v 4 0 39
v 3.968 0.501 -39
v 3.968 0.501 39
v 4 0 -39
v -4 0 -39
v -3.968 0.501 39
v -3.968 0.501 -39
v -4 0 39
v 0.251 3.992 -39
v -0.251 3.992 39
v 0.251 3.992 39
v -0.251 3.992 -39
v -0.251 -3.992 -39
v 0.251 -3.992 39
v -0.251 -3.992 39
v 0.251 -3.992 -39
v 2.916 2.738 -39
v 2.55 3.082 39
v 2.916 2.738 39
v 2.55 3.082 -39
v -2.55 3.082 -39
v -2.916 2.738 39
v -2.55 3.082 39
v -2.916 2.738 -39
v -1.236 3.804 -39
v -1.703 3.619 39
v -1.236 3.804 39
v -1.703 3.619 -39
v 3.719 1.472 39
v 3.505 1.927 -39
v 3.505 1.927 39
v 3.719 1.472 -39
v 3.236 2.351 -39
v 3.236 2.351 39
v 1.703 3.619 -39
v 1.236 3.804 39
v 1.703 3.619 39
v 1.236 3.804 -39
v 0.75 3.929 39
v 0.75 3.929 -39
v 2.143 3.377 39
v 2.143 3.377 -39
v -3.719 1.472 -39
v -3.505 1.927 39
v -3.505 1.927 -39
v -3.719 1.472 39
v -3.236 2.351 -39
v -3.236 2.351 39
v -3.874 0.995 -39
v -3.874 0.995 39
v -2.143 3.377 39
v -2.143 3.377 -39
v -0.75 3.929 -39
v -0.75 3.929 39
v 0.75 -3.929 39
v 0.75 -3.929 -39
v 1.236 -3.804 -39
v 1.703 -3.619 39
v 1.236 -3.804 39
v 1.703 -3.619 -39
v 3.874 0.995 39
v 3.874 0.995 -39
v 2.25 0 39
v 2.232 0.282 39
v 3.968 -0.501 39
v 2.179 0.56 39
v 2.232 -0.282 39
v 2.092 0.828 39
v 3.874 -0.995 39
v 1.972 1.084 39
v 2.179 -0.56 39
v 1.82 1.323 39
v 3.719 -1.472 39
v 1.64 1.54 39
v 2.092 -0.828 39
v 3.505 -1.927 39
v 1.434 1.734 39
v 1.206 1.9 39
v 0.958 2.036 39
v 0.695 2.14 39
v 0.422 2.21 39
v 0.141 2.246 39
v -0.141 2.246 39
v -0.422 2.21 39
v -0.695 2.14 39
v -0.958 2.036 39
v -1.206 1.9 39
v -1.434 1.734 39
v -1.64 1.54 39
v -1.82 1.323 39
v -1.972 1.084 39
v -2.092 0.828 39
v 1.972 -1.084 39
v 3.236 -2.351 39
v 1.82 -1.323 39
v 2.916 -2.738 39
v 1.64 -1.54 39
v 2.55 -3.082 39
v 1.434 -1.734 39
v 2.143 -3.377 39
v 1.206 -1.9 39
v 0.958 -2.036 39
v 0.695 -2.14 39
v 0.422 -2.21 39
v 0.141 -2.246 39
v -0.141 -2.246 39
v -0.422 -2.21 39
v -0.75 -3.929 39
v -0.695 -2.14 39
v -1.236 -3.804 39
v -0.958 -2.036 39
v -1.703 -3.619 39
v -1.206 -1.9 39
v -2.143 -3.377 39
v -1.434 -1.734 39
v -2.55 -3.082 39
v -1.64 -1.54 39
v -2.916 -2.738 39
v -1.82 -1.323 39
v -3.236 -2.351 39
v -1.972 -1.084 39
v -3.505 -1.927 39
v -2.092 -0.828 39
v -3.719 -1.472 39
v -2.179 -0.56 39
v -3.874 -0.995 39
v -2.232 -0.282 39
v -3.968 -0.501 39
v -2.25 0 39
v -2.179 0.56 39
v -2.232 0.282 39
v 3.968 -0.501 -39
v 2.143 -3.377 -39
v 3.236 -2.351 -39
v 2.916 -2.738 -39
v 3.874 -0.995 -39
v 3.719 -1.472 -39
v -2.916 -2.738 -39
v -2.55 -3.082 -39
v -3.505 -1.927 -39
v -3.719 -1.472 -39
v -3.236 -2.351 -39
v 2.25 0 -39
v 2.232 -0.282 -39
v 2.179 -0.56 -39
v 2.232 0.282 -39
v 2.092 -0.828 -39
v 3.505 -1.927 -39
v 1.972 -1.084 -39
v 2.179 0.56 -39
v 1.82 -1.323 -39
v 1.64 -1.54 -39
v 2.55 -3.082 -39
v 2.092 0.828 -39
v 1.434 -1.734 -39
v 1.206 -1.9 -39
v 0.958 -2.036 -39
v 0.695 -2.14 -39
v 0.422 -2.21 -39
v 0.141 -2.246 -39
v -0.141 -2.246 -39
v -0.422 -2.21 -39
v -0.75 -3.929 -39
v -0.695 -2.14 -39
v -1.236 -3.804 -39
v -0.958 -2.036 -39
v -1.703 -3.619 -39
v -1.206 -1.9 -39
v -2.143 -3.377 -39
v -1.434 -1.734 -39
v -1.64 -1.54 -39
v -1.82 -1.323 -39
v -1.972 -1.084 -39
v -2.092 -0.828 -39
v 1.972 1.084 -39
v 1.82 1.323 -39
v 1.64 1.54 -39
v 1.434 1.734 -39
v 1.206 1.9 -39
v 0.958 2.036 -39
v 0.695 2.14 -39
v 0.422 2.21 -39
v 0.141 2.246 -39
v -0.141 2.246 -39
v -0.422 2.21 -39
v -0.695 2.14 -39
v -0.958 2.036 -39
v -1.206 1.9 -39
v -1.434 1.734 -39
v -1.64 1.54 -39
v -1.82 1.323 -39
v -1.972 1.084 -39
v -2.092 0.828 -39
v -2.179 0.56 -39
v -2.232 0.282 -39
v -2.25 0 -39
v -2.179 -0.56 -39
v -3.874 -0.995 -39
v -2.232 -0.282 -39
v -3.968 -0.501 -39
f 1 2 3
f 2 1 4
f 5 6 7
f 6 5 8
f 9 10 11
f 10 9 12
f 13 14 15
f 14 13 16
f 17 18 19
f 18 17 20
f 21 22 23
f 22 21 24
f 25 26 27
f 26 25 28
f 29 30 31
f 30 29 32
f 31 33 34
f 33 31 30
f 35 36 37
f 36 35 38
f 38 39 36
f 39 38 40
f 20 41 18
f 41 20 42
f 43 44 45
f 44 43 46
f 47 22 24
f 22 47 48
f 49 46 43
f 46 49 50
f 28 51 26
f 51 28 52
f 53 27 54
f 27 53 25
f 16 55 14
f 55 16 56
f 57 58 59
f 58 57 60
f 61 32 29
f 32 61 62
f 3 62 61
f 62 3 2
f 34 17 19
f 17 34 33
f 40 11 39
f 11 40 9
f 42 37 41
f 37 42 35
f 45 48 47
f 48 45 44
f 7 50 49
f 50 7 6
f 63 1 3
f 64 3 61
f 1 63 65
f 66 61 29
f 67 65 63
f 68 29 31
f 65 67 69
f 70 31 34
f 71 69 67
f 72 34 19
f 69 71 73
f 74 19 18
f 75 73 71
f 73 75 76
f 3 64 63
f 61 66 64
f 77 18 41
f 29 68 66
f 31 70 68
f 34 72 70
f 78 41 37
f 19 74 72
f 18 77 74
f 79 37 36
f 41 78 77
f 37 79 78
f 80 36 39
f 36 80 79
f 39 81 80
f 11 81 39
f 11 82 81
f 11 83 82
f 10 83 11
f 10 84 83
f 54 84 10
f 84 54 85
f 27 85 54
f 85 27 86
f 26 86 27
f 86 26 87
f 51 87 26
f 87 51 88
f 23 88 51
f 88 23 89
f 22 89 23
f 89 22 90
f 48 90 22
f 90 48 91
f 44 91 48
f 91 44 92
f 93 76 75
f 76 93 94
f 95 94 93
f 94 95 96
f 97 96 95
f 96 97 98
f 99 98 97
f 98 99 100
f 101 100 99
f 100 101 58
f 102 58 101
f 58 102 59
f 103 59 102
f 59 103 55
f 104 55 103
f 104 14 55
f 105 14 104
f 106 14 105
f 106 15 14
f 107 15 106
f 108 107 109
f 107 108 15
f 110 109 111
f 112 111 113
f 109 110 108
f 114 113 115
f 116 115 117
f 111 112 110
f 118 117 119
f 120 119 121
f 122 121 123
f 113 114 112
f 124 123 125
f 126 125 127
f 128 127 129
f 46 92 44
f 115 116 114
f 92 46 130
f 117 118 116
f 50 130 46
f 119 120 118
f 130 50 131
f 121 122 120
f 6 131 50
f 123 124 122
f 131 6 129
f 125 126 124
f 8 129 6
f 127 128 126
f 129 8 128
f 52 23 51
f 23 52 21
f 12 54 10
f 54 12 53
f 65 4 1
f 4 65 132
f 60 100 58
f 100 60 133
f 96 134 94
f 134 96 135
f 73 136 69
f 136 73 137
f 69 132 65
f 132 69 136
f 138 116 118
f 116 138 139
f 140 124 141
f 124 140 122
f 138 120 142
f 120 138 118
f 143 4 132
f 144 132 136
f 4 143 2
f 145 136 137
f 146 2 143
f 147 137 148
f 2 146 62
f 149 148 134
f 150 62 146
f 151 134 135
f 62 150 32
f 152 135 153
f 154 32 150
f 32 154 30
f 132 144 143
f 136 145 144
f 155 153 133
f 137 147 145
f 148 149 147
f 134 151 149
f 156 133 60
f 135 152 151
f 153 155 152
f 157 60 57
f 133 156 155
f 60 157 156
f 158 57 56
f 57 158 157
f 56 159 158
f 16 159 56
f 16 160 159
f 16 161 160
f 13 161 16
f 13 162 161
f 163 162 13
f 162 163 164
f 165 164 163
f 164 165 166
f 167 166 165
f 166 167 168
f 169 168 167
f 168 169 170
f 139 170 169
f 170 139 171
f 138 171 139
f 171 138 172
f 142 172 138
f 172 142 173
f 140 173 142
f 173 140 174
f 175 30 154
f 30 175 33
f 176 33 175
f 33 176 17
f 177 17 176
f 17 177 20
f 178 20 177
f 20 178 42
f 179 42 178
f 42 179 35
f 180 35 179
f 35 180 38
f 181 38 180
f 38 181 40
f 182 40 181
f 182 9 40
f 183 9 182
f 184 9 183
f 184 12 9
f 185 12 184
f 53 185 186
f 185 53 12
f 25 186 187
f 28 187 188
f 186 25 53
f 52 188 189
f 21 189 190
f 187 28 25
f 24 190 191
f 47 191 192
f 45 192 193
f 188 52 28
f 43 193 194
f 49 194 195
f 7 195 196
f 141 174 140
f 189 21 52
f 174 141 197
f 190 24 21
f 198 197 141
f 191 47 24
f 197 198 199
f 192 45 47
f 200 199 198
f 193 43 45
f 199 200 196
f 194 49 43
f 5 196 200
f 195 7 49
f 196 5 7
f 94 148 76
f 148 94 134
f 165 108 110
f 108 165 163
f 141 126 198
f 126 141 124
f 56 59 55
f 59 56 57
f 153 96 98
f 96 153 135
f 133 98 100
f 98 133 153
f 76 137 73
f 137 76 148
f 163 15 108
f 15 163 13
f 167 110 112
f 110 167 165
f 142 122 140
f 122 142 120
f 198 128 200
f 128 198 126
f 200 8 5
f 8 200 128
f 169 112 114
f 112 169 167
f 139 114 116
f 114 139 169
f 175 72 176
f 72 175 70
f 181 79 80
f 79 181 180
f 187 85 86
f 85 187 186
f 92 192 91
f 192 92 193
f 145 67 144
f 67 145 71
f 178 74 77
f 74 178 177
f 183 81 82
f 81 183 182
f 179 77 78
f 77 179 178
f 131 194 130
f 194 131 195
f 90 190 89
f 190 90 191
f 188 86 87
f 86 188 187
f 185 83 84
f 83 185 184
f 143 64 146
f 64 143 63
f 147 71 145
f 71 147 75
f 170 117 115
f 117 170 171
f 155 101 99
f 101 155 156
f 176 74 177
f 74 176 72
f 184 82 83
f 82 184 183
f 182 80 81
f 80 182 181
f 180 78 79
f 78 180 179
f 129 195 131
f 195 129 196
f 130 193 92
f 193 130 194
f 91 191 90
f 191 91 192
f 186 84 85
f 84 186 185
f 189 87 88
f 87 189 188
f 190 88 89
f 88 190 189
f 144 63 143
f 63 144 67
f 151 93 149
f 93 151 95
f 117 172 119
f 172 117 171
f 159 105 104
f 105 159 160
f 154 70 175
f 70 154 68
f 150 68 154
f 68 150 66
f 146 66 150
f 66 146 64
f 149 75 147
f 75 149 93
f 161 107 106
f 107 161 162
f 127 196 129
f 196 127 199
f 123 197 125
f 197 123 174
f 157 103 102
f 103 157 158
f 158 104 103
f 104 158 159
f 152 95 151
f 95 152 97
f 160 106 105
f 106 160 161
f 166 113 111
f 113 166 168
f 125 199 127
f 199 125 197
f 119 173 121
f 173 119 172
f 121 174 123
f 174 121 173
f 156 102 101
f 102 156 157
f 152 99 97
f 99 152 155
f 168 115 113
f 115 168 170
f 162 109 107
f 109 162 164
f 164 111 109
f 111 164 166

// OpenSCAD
$fn = 50;


difference() {
	union() {
		translate(v = [0, 0, -39.0000000000]) {
			cylinder(h = 78, r = 4.0000000000);
		}
	}
	union() {
		translate(v = [0, 0, -100.0000000000]) {
			cylinder(h = 200, r = 2.2500000000);
		}
	}
}
